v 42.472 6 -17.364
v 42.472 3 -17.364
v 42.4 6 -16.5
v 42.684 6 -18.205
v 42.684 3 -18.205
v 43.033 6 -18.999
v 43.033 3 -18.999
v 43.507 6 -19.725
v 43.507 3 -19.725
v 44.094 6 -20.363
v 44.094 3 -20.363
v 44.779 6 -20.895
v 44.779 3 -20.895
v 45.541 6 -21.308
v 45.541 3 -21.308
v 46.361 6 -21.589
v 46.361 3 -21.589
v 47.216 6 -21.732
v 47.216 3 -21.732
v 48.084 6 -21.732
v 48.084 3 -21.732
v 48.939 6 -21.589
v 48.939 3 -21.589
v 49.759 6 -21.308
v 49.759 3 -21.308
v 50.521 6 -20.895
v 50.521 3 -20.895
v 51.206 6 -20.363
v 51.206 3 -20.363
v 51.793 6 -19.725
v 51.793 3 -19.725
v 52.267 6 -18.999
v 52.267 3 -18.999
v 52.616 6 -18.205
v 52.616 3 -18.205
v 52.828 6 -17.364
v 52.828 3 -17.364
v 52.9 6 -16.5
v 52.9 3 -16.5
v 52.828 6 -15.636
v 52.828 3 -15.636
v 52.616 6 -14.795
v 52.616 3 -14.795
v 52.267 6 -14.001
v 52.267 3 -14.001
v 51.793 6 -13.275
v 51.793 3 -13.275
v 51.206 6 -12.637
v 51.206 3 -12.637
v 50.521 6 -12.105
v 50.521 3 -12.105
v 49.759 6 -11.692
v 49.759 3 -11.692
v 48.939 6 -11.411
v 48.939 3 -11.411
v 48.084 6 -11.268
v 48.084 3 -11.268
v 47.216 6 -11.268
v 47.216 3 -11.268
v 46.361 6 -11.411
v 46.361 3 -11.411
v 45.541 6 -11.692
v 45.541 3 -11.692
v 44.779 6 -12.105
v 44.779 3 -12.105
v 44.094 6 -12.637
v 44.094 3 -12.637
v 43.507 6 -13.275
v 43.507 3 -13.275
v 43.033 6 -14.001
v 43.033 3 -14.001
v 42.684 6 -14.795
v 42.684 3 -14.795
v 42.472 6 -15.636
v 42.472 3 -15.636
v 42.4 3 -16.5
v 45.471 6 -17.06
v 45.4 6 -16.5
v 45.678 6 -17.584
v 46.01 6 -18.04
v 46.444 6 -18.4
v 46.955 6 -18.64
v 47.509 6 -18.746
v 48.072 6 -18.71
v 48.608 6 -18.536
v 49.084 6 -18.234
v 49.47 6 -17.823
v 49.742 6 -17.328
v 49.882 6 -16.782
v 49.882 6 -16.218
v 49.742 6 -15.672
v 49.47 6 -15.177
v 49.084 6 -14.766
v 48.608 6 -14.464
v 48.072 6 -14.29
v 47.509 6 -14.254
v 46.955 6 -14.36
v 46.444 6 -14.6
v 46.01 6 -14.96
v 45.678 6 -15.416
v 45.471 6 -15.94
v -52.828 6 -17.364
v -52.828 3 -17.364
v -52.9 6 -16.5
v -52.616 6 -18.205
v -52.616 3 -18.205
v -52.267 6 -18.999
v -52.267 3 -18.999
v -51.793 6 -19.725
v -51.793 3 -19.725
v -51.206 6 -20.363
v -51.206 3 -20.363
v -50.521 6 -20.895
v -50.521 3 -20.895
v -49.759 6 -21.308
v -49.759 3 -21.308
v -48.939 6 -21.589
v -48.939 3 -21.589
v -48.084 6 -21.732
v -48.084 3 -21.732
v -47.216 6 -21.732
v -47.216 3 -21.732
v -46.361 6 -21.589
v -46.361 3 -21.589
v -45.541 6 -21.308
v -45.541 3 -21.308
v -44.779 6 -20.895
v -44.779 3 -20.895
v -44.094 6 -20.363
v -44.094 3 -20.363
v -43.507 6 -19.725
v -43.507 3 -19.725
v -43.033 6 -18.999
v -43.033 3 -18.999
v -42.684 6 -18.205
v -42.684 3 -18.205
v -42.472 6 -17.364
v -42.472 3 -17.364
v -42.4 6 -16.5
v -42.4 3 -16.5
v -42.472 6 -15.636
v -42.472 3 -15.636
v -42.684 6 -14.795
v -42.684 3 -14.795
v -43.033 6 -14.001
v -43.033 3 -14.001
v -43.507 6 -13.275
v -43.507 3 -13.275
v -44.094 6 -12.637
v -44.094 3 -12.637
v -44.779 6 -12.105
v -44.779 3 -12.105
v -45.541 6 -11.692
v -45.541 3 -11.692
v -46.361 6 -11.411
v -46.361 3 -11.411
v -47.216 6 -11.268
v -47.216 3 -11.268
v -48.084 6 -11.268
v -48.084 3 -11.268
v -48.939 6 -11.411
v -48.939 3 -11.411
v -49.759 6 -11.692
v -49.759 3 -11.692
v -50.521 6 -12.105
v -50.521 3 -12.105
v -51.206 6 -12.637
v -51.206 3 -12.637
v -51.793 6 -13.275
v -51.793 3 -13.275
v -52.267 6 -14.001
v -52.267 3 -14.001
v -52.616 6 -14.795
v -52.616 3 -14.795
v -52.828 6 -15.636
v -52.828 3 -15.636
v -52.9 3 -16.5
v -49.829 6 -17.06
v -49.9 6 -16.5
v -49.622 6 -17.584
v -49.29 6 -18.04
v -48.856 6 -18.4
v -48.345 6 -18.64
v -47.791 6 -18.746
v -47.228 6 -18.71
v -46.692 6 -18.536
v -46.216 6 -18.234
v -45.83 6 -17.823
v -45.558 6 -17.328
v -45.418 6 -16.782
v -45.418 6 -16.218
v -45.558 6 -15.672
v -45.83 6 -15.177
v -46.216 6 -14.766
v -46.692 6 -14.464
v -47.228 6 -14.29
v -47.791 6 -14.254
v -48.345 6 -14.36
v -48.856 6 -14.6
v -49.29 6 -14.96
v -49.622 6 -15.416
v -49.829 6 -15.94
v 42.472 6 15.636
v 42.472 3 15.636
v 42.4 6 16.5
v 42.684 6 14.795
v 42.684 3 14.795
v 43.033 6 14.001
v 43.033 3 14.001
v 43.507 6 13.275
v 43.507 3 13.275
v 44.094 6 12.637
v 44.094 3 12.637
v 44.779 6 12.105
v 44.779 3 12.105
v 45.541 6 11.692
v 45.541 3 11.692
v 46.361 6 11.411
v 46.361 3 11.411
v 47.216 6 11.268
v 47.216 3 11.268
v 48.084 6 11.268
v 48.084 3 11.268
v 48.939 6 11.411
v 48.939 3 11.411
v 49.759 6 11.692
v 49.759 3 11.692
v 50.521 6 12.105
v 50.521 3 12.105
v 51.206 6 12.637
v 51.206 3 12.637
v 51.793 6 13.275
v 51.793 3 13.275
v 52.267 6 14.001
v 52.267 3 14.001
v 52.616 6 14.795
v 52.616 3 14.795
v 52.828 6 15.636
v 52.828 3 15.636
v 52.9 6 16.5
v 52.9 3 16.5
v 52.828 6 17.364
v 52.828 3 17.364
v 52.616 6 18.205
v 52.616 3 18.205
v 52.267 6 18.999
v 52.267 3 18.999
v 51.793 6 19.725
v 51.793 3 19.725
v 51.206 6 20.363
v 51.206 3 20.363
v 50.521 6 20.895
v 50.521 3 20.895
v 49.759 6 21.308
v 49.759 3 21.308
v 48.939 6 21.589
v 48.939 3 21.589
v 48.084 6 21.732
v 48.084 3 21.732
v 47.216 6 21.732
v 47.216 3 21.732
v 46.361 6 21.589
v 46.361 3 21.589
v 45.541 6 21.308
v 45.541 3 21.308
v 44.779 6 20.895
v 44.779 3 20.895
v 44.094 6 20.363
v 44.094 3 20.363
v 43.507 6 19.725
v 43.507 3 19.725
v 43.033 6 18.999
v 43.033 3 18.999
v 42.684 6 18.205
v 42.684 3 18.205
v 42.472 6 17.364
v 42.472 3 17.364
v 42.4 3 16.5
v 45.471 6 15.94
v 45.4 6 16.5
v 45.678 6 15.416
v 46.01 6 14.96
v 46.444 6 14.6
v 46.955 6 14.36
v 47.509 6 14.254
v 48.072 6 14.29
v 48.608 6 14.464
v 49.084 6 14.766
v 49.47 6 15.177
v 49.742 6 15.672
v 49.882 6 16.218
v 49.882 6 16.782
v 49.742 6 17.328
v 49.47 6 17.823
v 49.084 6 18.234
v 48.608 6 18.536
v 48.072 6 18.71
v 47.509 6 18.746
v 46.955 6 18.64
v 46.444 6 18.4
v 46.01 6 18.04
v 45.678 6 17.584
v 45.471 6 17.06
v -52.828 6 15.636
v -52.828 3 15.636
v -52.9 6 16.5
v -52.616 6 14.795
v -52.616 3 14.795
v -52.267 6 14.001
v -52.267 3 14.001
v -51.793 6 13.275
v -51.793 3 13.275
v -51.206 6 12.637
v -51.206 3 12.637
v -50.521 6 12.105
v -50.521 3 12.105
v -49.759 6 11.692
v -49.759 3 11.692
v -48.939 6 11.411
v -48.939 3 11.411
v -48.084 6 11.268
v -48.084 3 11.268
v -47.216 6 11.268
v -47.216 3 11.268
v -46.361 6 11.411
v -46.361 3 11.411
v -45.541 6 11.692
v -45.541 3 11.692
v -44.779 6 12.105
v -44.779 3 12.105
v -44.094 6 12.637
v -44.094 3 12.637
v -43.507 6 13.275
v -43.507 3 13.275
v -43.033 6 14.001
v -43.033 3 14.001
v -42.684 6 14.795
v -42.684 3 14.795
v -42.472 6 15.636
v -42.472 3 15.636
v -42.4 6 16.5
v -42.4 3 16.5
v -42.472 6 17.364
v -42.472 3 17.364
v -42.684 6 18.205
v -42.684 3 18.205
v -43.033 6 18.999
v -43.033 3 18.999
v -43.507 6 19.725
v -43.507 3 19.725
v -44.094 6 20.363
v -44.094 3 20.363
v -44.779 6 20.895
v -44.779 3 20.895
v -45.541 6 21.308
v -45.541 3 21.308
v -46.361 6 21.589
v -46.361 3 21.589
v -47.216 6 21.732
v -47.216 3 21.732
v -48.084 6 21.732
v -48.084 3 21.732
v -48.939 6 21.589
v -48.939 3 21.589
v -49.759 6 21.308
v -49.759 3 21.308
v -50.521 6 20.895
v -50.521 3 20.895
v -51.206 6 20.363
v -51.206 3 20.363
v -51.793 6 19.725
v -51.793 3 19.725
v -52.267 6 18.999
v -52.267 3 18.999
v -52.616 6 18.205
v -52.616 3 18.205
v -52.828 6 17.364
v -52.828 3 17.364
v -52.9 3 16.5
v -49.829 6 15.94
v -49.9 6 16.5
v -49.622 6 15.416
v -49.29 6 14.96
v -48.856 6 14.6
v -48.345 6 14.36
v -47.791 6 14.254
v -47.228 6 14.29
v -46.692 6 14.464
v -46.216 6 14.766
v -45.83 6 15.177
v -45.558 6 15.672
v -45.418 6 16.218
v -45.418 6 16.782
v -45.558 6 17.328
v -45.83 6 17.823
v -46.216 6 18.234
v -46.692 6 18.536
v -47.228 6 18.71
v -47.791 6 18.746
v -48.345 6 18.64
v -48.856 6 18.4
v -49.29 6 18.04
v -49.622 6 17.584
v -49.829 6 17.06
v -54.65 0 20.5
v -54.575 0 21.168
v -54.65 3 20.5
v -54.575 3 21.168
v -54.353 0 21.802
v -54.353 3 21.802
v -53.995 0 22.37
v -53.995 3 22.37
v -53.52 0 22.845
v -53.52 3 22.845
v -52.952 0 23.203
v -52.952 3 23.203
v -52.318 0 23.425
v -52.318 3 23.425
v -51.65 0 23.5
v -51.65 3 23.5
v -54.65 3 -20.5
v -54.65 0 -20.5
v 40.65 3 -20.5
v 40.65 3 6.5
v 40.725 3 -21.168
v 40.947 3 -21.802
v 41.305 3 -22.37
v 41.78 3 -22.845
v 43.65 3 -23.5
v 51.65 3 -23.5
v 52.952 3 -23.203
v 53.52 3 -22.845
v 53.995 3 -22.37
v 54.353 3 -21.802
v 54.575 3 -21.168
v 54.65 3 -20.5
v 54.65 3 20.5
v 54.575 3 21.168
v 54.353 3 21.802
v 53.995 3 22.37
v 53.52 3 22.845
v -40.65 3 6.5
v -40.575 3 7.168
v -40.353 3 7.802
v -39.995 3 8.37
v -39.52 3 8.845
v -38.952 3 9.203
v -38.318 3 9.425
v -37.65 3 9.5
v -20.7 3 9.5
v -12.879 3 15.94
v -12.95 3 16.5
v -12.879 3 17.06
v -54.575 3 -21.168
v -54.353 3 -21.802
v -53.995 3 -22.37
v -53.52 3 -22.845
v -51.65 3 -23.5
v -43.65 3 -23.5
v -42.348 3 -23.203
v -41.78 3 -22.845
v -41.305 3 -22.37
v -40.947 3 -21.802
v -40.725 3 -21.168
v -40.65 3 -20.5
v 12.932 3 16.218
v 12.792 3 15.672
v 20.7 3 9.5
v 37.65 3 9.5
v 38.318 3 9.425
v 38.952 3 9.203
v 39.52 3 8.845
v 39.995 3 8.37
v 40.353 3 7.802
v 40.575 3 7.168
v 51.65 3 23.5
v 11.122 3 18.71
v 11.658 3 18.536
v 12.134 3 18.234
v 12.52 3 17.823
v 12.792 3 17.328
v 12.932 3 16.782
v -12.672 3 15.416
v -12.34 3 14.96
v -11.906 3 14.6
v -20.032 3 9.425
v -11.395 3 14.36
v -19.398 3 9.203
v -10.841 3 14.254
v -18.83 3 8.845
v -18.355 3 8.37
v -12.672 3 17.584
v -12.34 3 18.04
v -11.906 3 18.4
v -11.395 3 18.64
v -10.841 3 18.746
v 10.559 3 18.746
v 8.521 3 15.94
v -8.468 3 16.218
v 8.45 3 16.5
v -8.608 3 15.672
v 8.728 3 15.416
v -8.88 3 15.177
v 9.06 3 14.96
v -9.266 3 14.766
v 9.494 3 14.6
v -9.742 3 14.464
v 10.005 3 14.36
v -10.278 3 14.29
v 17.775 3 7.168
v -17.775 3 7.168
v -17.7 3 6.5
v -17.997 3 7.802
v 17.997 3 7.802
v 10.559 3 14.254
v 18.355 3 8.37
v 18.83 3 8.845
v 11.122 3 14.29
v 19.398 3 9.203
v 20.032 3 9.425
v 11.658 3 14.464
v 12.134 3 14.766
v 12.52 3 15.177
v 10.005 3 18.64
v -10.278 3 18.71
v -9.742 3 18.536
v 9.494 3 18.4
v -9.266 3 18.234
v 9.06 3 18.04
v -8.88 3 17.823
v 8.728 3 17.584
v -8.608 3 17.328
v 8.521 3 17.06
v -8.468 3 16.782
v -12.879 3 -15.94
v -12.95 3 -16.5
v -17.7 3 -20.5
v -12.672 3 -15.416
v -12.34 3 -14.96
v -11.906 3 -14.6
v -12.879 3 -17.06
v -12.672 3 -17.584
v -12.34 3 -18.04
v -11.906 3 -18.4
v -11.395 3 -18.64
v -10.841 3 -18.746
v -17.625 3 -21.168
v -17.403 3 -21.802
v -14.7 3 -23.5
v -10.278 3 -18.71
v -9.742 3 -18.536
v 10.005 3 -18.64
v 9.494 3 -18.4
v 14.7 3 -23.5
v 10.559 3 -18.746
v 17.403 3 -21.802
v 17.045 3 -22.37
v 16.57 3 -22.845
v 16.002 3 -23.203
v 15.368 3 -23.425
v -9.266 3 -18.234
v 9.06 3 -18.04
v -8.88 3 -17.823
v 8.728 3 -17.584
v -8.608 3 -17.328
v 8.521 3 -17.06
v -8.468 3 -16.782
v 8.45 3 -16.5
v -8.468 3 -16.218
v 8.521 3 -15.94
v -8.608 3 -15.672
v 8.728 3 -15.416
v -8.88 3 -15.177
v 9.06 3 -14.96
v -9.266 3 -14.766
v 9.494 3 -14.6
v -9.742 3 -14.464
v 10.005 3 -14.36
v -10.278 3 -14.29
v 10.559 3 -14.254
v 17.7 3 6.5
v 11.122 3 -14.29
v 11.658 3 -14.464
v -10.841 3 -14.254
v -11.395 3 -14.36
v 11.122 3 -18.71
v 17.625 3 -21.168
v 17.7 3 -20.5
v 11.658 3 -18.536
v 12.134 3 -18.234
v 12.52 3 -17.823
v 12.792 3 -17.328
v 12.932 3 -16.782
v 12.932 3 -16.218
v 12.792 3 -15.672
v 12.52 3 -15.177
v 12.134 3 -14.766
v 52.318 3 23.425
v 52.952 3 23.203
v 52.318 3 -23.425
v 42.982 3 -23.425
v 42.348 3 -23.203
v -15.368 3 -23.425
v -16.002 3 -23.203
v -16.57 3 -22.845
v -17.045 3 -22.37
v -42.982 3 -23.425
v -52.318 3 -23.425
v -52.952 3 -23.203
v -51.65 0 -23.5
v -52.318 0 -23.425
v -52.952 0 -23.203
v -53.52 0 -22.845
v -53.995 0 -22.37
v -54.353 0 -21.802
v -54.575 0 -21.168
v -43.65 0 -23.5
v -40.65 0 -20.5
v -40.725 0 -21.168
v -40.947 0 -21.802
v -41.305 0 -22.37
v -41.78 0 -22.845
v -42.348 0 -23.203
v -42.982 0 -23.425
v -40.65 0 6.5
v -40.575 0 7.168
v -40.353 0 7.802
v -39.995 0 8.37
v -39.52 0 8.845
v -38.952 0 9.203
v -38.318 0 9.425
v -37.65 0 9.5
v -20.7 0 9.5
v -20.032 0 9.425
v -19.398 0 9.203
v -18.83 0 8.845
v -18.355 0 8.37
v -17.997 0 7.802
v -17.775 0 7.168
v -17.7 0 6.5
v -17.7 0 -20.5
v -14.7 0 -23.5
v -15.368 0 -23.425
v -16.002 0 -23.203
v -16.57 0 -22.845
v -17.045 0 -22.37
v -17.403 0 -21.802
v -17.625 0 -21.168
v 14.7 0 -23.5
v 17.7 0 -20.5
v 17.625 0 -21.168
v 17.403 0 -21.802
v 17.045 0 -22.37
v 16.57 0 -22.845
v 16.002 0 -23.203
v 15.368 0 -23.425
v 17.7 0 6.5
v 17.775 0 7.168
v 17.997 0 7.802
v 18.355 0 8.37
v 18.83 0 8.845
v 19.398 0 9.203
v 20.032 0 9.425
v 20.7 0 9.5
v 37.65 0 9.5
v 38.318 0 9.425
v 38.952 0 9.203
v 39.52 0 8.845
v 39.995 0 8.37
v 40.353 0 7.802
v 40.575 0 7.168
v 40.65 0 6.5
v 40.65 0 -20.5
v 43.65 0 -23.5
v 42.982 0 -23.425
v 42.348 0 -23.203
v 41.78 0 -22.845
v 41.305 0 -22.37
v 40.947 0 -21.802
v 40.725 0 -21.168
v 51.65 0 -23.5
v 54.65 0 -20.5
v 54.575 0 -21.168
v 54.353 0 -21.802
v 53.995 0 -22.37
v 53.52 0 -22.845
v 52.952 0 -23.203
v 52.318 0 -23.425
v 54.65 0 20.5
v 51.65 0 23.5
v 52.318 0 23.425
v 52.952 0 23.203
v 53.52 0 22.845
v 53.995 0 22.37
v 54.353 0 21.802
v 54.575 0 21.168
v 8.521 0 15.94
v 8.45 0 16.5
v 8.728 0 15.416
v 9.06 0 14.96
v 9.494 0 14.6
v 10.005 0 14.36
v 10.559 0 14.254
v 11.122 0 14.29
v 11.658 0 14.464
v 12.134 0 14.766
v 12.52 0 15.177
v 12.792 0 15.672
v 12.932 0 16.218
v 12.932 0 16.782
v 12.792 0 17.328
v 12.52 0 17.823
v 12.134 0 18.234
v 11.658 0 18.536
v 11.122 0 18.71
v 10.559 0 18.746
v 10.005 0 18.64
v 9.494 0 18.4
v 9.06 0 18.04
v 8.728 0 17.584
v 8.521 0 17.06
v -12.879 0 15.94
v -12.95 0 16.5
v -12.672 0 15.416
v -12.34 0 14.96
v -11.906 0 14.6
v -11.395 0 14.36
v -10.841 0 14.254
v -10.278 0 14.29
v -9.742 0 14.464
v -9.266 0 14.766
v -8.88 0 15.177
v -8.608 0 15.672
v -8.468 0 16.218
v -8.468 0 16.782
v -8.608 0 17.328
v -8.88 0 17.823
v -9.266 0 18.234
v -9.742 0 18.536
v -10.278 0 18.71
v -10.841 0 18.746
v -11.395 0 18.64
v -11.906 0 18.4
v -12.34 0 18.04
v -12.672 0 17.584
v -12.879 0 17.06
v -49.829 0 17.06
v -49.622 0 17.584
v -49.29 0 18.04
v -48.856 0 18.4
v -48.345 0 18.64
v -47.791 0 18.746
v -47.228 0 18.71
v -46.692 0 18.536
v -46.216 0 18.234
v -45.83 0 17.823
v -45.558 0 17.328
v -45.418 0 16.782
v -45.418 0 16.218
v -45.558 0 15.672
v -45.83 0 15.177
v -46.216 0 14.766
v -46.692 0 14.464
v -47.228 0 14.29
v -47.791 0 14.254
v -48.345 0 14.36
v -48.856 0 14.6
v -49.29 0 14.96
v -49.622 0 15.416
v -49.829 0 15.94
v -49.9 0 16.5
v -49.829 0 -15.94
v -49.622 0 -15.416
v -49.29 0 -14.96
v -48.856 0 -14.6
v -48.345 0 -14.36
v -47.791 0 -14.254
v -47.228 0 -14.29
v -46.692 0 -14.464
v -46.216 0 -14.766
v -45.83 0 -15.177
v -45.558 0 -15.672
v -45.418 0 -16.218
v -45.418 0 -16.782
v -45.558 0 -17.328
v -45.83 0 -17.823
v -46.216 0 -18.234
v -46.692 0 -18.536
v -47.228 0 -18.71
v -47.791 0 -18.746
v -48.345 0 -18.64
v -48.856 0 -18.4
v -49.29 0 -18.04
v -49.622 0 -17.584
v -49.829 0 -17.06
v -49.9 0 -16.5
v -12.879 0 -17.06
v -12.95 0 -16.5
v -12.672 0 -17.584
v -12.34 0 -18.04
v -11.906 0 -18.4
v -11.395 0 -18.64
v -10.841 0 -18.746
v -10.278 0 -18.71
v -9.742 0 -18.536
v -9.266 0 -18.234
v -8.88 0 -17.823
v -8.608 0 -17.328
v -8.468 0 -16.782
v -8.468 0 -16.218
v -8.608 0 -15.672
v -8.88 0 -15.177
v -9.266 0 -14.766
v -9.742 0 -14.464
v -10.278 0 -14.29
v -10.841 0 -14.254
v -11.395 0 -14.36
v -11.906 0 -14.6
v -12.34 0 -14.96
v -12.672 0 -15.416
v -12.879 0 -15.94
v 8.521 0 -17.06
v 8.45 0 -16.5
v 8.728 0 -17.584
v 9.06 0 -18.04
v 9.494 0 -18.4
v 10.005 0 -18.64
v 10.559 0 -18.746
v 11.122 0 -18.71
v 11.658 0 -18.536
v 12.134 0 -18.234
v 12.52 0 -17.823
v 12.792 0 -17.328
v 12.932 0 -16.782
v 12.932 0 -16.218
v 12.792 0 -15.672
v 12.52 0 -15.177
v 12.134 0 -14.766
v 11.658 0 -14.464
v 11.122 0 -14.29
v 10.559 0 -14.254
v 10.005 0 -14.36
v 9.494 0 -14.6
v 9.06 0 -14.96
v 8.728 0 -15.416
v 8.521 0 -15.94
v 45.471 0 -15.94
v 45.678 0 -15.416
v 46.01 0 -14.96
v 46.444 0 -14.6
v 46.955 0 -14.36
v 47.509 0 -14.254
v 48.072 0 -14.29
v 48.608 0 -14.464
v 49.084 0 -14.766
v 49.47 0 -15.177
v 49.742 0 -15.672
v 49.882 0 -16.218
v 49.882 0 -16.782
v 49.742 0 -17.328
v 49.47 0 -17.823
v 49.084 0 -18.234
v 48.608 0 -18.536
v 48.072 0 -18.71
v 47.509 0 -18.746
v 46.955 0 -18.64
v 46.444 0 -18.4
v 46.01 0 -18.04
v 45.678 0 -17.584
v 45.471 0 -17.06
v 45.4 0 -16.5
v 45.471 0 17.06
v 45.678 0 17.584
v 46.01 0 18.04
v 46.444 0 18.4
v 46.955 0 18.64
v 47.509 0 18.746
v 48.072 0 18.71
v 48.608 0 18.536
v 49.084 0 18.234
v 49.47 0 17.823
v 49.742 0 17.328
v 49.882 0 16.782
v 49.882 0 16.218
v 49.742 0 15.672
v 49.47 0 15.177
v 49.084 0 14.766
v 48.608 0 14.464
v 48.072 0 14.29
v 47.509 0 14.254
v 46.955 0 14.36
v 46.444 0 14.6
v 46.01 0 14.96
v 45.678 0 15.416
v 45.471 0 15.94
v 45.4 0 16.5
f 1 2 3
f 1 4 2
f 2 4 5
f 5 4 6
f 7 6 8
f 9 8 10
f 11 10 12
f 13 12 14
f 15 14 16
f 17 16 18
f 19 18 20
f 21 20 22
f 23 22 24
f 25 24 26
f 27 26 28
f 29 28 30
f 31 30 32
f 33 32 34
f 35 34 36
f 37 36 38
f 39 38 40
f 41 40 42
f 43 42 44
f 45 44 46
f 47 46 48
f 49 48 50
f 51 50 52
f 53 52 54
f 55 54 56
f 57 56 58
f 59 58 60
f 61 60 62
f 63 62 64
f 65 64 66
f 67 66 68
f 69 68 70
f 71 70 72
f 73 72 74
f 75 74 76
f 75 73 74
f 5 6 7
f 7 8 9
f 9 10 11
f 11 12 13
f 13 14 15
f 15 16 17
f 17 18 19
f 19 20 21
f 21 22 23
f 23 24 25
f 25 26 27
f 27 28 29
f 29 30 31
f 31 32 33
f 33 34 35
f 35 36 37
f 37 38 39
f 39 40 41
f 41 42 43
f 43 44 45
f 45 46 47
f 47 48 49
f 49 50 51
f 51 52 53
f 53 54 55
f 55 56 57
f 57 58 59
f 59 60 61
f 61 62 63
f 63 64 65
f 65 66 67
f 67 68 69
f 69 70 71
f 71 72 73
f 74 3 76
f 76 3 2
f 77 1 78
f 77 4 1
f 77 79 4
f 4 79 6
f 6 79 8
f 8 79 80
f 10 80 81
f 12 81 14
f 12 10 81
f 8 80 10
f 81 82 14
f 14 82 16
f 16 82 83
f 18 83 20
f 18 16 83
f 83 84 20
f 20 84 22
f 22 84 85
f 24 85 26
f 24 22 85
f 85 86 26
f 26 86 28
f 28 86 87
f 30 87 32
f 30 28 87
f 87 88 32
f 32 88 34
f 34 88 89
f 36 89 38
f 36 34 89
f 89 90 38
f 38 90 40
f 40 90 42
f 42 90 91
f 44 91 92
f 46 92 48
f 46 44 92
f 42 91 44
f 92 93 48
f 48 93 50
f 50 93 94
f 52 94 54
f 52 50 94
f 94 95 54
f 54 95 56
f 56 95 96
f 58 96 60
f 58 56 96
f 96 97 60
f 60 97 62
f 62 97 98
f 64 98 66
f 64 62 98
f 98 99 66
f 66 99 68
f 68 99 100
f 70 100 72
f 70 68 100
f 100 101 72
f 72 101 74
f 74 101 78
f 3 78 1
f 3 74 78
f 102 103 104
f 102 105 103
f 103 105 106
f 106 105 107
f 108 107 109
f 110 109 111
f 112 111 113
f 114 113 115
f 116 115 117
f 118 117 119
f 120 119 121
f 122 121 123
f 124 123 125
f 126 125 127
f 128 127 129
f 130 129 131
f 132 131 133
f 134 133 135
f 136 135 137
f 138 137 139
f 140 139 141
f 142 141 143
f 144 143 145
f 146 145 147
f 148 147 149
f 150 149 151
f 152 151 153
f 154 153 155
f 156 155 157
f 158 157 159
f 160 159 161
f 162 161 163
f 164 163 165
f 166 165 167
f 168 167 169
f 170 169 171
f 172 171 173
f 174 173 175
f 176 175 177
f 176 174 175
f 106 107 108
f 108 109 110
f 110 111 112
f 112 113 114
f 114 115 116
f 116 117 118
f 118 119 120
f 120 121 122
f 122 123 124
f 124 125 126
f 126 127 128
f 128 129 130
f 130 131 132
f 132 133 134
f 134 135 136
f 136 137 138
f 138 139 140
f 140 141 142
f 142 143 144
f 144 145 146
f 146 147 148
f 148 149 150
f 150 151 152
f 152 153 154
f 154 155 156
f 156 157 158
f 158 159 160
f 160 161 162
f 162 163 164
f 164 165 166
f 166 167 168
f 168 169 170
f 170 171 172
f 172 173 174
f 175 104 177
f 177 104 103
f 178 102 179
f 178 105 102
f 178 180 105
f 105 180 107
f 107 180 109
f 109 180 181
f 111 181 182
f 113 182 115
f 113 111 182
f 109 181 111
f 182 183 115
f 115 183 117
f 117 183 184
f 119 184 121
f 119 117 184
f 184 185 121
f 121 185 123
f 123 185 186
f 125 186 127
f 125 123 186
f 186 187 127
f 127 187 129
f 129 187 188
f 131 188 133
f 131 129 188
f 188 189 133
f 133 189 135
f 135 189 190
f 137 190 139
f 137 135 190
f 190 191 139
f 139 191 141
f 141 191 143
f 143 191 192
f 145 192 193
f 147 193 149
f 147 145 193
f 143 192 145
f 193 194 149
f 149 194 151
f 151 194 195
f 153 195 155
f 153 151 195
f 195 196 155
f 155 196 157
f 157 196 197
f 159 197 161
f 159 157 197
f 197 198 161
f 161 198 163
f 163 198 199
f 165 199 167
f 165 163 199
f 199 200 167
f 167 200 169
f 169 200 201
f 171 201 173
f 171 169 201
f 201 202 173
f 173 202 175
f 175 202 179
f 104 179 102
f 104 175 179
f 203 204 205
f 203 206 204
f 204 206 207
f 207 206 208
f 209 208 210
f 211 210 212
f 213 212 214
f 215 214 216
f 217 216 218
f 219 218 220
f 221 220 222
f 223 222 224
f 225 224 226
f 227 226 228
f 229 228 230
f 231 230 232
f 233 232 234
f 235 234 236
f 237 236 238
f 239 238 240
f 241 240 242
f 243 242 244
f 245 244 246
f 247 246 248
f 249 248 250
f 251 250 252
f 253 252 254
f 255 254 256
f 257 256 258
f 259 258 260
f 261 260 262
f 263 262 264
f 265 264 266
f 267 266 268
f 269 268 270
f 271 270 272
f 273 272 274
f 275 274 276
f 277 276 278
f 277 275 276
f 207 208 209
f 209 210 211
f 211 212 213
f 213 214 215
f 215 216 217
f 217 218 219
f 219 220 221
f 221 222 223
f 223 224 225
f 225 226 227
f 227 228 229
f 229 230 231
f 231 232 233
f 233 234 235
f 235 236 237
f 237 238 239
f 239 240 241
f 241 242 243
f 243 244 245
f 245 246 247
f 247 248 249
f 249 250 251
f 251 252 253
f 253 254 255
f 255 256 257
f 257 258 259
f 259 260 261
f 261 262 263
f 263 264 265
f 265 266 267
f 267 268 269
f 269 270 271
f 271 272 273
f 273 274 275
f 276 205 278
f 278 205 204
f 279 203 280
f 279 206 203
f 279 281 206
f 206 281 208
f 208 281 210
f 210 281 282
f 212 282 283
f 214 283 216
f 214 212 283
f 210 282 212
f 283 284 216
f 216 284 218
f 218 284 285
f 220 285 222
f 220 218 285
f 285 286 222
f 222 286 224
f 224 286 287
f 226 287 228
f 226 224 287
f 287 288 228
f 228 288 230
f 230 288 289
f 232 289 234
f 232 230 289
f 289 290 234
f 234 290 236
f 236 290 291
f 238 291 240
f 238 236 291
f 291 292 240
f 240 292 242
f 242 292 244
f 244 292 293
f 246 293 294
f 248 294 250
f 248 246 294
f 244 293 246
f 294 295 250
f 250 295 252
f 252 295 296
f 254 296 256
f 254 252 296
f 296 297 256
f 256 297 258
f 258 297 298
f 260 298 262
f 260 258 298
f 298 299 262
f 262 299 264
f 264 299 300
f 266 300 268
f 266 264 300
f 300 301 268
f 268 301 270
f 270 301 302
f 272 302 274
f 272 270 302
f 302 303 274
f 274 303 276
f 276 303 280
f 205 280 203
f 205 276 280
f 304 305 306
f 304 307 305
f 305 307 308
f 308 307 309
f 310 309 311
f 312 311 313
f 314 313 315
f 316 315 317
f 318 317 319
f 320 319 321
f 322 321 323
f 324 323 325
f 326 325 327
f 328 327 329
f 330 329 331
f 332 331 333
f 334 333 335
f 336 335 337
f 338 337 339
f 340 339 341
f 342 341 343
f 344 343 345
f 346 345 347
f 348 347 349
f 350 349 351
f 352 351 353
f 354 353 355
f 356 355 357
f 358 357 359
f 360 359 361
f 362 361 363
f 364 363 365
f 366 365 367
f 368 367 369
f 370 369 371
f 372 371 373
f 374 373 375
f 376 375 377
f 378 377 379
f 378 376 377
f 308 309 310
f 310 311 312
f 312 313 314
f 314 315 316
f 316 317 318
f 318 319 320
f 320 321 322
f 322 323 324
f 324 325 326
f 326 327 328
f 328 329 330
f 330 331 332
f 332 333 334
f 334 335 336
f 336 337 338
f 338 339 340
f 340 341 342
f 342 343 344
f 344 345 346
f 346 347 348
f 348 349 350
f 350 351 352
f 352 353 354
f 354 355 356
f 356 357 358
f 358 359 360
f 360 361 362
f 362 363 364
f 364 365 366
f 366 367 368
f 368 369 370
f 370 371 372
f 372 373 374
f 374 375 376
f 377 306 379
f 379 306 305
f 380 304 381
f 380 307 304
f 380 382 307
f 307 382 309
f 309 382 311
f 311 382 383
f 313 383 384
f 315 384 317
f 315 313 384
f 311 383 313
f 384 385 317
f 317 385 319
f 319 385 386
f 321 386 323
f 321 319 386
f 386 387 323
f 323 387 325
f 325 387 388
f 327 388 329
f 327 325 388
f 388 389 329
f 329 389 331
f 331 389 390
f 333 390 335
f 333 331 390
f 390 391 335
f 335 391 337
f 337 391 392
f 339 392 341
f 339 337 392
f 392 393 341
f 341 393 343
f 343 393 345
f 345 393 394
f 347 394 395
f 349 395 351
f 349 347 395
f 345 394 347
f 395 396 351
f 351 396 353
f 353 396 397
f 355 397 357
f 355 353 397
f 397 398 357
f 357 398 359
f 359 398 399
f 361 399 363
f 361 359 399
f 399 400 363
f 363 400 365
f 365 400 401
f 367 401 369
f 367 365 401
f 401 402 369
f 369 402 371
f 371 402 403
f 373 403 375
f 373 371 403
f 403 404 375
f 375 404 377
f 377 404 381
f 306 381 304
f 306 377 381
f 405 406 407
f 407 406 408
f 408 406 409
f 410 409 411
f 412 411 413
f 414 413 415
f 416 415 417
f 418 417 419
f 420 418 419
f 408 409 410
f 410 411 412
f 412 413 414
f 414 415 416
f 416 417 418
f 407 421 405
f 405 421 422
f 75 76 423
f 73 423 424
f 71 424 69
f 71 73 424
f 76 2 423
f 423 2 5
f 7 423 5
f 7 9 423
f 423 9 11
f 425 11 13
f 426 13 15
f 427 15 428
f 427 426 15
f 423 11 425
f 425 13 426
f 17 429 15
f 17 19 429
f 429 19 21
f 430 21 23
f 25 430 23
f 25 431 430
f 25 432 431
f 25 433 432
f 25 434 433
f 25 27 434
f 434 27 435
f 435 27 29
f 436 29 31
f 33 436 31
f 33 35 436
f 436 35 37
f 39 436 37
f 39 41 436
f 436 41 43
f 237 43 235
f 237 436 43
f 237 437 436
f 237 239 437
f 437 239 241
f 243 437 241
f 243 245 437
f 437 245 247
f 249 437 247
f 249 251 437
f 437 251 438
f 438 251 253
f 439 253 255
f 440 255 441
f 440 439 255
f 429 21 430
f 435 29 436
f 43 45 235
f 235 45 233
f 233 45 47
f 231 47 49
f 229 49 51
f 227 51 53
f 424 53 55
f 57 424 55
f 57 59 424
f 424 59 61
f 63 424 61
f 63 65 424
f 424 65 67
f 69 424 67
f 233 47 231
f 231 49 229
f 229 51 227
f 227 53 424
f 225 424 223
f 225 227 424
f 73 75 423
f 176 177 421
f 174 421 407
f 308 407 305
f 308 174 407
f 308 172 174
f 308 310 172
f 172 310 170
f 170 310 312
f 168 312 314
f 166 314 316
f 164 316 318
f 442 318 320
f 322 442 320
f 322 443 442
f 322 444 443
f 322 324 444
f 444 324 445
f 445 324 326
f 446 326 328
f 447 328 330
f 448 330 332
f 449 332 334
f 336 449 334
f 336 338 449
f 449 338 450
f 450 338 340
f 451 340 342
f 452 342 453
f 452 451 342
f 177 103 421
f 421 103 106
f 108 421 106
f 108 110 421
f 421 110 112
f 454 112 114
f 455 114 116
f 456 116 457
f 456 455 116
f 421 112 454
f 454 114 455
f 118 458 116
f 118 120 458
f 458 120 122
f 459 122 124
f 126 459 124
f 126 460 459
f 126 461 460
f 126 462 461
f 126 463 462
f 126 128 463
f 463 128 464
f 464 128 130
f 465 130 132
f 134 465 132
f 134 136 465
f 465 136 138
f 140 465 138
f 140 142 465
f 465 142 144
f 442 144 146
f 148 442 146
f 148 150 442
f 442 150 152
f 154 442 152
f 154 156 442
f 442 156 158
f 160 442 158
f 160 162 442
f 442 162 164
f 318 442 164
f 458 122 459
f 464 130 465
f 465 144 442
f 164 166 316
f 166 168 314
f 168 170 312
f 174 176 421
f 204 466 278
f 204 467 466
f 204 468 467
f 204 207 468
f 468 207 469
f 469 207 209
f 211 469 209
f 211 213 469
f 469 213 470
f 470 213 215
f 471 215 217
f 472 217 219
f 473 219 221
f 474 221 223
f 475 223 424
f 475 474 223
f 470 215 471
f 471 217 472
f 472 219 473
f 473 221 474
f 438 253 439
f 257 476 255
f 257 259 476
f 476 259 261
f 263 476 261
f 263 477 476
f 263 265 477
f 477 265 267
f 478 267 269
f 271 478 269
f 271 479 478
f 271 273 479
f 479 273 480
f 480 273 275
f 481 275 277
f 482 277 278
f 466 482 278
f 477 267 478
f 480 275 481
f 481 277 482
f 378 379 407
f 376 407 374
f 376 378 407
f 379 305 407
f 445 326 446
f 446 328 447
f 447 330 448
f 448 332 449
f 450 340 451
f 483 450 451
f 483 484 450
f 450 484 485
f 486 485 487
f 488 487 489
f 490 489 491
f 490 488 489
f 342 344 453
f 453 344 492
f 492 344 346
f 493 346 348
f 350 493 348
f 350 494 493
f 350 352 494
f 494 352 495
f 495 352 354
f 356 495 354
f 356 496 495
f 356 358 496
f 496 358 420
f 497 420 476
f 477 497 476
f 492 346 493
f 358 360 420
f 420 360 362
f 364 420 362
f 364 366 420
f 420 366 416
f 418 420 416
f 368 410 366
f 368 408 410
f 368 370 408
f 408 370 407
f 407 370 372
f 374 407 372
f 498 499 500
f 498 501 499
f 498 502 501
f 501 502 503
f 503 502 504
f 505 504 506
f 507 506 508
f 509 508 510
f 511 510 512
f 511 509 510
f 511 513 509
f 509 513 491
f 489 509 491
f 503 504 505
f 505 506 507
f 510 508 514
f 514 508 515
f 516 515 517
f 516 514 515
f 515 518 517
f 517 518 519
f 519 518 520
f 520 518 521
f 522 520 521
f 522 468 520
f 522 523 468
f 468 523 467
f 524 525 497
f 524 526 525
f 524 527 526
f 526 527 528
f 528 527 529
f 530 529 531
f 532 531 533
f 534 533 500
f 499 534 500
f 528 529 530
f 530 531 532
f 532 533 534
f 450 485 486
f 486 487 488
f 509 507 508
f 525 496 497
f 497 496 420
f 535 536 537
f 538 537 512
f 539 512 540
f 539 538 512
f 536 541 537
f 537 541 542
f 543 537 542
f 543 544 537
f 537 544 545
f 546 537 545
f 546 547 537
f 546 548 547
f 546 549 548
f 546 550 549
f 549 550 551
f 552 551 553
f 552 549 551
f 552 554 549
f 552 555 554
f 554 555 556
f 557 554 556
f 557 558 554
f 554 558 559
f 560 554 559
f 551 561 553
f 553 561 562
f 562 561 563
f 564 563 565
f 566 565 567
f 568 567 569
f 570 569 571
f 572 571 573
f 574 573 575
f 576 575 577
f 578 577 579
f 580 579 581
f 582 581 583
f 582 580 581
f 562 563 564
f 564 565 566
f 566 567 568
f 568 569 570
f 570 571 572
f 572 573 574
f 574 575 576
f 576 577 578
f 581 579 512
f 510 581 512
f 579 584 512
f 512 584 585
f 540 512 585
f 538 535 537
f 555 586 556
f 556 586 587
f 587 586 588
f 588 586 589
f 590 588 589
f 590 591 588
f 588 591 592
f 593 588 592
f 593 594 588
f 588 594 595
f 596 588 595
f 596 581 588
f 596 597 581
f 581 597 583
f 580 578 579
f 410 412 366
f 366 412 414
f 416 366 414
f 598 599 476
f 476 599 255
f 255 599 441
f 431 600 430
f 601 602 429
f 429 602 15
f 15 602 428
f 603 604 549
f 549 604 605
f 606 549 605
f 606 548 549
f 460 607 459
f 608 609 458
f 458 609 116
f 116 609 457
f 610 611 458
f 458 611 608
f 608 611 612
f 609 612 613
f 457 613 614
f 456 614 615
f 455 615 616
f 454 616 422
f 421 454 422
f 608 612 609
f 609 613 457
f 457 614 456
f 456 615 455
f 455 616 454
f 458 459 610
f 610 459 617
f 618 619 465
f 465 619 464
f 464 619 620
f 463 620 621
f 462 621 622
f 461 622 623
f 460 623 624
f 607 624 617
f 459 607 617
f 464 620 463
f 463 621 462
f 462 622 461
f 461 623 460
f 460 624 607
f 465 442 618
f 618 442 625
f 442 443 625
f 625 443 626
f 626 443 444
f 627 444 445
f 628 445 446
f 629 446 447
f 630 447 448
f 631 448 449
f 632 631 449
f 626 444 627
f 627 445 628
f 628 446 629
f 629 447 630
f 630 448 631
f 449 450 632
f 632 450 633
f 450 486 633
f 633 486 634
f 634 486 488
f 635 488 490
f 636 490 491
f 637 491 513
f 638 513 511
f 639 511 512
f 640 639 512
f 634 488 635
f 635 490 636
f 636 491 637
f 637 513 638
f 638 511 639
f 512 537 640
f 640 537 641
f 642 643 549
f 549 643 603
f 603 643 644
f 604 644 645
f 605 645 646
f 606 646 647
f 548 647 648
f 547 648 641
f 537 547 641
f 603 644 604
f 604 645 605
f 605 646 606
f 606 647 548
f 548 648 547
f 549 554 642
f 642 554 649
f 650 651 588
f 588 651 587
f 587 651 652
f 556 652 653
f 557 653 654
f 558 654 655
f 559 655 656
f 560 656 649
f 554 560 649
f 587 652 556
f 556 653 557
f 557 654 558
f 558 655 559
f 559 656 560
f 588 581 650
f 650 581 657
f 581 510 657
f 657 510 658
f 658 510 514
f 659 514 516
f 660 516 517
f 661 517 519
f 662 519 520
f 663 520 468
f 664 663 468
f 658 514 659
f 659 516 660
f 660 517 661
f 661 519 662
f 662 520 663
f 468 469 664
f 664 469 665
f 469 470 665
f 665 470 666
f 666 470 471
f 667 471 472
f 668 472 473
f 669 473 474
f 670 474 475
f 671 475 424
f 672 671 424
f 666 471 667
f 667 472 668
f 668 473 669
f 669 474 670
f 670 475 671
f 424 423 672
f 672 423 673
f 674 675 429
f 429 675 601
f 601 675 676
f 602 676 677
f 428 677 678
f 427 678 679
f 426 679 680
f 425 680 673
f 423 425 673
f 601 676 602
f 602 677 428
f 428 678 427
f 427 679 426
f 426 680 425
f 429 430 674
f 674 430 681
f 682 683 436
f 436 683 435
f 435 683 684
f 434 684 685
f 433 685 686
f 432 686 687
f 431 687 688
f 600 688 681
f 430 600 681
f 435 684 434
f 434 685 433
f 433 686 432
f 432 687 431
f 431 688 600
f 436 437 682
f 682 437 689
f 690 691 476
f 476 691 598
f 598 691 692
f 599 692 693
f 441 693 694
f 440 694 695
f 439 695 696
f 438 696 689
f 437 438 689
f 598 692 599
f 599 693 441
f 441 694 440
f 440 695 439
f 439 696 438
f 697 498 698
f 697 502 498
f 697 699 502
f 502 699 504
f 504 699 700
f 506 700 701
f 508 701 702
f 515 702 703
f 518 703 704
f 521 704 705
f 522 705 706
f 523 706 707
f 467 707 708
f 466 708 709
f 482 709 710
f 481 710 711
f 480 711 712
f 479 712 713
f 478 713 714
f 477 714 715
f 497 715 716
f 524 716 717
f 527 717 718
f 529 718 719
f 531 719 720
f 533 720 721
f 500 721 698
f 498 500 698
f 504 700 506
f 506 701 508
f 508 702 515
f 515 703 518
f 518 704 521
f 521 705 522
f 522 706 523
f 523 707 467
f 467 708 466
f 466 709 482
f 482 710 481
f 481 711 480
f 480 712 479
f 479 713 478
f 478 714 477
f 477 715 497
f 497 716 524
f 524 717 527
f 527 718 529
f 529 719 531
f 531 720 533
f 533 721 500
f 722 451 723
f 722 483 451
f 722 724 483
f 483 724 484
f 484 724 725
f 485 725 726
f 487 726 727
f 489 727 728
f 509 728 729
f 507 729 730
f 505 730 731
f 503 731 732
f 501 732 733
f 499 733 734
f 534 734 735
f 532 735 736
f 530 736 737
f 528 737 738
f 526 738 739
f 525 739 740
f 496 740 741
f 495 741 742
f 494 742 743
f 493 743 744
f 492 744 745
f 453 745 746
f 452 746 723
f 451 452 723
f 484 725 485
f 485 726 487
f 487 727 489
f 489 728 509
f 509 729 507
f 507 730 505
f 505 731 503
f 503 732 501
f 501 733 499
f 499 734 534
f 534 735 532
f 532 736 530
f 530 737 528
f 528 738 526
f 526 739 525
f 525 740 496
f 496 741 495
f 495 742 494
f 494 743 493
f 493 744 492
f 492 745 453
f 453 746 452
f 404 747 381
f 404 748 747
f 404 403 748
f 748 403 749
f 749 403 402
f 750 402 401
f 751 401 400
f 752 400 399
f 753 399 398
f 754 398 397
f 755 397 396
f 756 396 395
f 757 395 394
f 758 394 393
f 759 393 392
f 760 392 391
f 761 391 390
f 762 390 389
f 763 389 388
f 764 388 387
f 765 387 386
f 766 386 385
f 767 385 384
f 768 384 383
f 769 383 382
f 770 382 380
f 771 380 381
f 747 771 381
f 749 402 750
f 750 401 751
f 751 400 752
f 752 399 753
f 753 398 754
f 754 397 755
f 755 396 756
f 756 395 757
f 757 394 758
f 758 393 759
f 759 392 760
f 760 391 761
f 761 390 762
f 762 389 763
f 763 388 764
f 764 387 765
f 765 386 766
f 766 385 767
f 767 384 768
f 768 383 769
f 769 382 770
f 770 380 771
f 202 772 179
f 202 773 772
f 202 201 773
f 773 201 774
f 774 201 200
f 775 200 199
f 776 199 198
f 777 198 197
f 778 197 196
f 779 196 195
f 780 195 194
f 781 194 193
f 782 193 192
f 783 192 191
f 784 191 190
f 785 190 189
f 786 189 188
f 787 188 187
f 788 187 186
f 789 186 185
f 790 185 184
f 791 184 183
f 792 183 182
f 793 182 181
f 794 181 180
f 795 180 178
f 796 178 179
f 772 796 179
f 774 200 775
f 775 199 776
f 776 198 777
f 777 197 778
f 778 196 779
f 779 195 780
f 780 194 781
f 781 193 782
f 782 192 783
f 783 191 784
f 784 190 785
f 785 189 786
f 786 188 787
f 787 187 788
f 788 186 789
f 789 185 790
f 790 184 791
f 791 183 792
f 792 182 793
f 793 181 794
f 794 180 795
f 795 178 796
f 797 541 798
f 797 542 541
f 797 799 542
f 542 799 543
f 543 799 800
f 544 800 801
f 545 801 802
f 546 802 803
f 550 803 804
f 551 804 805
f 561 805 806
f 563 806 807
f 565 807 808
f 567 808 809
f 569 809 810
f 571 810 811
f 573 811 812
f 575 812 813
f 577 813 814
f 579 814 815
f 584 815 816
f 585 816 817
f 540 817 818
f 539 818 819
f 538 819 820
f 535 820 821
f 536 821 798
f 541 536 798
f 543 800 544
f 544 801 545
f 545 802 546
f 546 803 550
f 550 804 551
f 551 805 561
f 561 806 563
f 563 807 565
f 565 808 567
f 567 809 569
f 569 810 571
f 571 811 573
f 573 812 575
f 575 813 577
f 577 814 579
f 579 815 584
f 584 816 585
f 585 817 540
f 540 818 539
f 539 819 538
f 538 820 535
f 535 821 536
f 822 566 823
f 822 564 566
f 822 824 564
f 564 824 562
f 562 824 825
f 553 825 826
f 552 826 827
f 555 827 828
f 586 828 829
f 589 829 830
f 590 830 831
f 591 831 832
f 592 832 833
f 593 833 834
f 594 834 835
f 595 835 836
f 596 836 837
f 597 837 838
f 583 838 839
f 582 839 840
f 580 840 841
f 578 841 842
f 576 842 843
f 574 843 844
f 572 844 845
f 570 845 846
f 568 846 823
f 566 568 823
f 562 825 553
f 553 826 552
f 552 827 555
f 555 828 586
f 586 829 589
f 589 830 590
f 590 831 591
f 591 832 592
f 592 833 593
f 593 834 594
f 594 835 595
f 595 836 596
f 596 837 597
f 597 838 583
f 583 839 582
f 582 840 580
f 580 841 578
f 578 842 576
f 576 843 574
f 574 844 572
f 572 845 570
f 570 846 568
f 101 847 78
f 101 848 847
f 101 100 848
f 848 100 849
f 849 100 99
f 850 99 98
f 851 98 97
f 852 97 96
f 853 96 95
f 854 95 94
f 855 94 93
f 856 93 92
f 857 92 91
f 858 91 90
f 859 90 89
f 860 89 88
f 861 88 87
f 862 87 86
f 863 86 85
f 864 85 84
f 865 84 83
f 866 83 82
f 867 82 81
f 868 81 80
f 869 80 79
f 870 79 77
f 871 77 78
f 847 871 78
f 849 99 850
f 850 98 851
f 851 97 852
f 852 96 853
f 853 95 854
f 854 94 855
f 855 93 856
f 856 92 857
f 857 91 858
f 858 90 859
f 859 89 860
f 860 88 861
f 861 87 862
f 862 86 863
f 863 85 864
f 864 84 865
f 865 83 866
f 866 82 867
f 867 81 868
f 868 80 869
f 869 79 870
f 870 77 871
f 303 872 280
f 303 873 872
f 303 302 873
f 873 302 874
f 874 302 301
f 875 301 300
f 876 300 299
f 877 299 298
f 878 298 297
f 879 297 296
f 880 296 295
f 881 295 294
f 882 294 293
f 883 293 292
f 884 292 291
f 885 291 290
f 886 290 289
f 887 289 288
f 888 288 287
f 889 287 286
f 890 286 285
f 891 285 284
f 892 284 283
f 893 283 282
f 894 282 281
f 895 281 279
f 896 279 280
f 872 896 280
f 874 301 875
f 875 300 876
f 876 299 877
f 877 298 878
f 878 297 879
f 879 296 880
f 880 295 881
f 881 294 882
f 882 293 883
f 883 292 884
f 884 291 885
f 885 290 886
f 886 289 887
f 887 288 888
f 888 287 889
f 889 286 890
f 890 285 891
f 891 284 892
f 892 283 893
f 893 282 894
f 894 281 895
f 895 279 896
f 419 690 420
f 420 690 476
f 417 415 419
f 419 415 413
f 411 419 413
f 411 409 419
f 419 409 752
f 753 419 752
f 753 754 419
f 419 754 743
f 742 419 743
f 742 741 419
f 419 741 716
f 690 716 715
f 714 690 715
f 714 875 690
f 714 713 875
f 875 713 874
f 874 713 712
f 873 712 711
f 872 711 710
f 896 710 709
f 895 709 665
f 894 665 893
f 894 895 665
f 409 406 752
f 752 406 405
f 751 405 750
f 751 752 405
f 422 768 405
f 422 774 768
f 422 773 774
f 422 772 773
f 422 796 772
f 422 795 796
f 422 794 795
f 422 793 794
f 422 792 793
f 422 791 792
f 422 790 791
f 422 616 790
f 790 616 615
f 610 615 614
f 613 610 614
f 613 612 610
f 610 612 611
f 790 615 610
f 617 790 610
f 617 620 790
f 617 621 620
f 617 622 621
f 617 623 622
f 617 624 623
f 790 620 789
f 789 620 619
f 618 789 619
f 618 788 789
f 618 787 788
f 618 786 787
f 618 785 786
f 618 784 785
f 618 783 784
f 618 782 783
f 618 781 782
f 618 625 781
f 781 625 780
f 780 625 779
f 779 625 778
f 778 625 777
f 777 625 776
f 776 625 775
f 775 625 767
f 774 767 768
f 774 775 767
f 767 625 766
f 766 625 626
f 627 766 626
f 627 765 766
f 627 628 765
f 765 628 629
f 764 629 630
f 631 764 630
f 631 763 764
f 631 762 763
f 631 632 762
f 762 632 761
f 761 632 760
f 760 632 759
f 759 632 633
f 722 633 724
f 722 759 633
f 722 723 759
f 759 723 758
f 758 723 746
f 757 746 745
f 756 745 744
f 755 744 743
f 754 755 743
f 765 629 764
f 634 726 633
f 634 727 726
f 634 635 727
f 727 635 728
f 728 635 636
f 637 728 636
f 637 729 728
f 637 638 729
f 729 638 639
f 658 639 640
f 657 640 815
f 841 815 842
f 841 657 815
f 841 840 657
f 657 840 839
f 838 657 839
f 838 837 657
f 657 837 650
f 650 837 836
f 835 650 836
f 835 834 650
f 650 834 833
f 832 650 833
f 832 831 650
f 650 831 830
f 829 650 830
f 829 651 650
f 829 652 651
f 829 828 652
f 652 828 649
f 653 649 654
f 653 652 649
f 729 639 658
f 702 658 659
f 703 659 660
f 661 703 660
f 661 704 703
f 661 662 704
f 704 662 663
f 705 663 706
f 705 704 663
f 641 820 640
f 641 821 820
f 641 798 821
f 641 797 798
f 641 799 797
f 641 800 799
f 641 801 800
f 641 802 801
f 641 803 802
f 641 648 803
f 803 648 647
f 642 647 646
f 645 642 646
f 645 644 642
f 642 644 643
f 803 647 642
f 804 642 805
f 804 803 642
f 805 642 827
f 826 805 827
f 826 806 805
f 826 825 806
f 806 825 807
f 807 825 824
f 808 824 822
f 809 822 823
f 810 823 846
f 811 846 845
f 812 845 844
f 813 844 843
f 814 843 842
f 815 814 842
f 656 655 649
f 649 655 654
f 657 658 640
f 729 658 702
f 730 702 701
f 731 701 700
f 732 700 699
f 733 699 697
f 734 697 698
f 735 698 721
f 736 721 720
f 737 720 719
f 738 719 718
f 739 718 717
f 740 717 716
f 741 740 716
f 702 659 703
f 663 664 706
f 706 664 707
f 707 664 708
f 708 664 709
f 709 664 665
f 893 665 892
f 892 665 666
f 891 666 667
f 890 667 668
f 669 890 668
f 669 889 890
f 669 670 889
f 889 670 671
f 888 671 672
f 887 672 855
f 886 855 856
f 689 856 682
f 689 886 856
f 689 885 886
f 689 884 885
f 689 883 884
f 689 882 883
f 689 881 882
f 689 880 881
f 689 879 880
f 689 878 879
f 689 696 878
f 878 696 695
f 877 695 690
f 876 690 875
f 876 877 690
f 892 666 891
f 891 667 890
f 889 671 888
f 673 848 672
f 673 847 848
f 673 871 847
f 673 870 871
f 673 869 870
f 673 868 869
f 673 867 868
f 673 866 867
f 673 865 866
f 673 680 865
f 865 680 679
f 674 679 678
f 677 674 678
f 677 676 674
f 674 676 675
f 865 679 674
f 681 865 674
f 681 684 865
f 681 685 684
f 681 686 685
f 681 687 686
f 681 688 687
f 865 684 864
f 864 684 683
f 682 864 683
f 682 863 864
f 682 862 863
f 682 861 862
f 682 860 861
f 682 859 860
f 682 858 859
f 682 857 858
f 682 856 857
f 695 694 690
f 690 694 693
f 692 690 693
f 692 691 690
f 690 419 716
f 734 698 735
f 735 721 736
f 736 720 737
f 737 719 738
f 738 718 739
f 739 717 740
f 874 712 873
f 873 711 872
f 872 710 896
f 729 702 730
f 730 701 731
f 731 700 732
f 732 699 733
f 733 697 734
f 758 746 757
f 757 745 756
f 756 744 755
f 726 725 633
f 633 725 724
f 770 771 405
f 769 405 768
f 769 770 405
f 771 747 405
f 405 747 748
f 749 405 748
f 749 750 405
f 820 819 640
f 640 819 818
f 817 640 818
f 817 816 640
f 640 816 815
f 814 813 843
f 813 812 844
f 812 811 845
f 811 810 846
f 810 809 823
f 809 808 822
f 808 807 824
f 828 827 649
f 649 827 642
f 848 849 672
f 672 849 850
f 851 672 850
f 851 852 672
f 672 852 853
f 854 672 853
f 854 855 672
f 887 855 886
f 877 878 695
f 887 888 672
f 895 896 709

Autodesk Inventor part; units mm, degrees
ref_plane "YZ Plane" through (0, 0, 0) normal (1, 0, 0) x (0, 1, 0)
ref_plane "XY Plane" through (0, 0, 0) normal (0, 0, 1) x (1, 0, 0)
sketch "Sketch1" plane through (0, 0, 0) normal (0, 1, 0) x (-1, 0, 0)
  line L0 (-51.65, 23.5) -> (51.65, 23.5)
  line L1 (54.65, 20.5) -> (54.65, -20.5)
  line L2 (51.65, -23.5) -> (-51.65, -23.5)
  line L3 (-54.65, -20.5) -> (-54.65, 20.5)
  circle A0 centre (-47.65, 16.5) radius 2.25
  circle A1 centre (47.65, 16.5) radius 2.25
  circle A2 centre (-47.65, 16.5) radius 26.75 construction
  circle A3 centre (-10.7, 16.5) radius 2.25
  circle A4 centre (-10.7, 16.5) radius 11.2 construction
  line L4 (-21.9, 16.5) -> (-21.9, 6.8604)
  line L5 (-20.9, 16.5) -> (-20.9, 6.8604)
  circle A5 centre (10.7, 16.5) radius 2.25
  circle A6 centre (10.7, 16.5) radius 11.2 construction
  line L6 (-0.5, 16.5) -> (-0.5, 5.694)
  line L7 (0.5, 16.5) -> (0.5, 5.694)
  circle A7 centre (47.65, 16.5) radius 26.75 construction
  line L8 (20.9, 16.5) -> (20.9, 5.8426)
  line L9 (21.9, 16.5) -> (21.9, 5.8426)
  arc A8 (-51.65, 23.5) -> (-54.65, 20.5) centre (-51.65, 20.5) ccw
  arc A9 (-54.65, -20.5) -> (-51.65, -23.5) centre (-51.65, -20.5) ccw
  arc A10 (54.65, 20.5) -> (51.65, 23.5) centre (51.65, 20.5) ccw
  arc A11 (51.65, -23.5) -> (54.65, -20.5) centre (51.65, -20.5) ccw
  line L10 (-84.9483, 16.5) -> (77.5332, 16.5) construction
  line L11 (-54.65, 0) -> (54.65, 0)
  line L12 (10.7, 30.5) -> (10.7, -33.5) construction
  circle A12 centre (10.7, -16.5) radius 2.25
  line L13 (5, -8.5) -> (18, -8.5) construction
  line L14 (3.7, -4.5) -> (3.7, -33.5) construction
  line L15 (-6.3, -4.5) -> (-6.3, -33.5) construction
  line L16 (-1.3, -33.5) -> (-1.3, -4.5) construction
  circle A13 centre (-1.3, -38.9) radius 2.25
  circle A14 centre (-1.3, -8.5) radius 2.25
  line L17 (-17.7373, -23.5) -> (14.2274, -23.5)
  line L18 (14.2274, -23.5) -> (14.2274, -45.3565)
  line L19 (14.2274, -45.3565) -> (-17.7373, -45.3565)
  line L20 (-17.7373, -45.3565) -> (-17.7373, -23.5)
  line L21 (-40.65, 5) -> (-30.65, 5)
  line L22 (-30.65, 5) -> (-30.65, -5)
  line L23 (-30.65, -5) -> (-40.65, -5)
  line L24 (-40.65, -5) -> (-40.65, 5)
  line L25 (-42.65, -7) -> (-28.65, -7)
  line L26 (-28.65, -7) -> (-28.65, 7)
  line L27 (-28.65, 7) -> (-42.65, 7)
  line L28 (-42.65, 7) -> (-42.65, -7)
  point P0 (0, 0)
  point P1 (-54.65, 23.5)
  point P2 (-54.65, -23.5)
  point P3 (0, 23.5)
  point P4 (-35.65, 5)
  point P5 (-30.65, 0)
  dimension "d5" = 53.5
  dimension "d12" = 53.5
  dimension "d1" = 4.5
  dimension "d2" = 7
  dimension "d3" = 4.5
  dimension "d4" = 7
  dimension "d6" = 4.5
  dimension "d7" = 22.4
  dimension "d8" = 1
  dimension "d9" = 4.5
  dimension "d10" = 22.4
  dimension "d11" = 1
  dimension "d13" = 1
  dimension "d14" = 3
  dimension "d23" = 16.5
  dimension "d24" = 7
  dimension "d27" = 8
  dimension "d28" = 7
  dimension "d29" = 10
  dimension "d30" = 5
  dimension "d31" = 4.5
  dimension "d32" = 4.5
  dimension "d33" = 30.4
  dimension "d38" = 0
  dimension "d40" = 10
  dimension "d41" = 10
  dimension "d43" = 2
  dimension "d47" = 12
ref_plane "Work Plane1" through (0, 3, 0) normal (0, 1, 0) x (-1, 0, 0)
sketch "Sketch3" plane through (0, 3, 0) normal (0, 1, 0) x (-1, 0, 0)
  circle A0 centre (-47.65, 16.5) radius 2.25
  circle A1 centre (-47.65, -16.5) radius 2.25
  circle A2 centre (-10.7, -16.5) radius 2.25
  circle A3 centre (10.7, -16.5) radius 2.25
  circle A4 centre (47.65, -16.5) radius 2.25
  circle A5 centre (47.65, 16.5) radius 2.25
  circle A6 centre (10.7, 16.5) radius 2.25
  circle A7 centre (-10.7, 16.5) radius 2.25
  line L0 (-54.65, 23.5) -> (-54.65, -23.5)
  line L1 (-54.65, -23.5) -> (54.65, -23.5)
  line L2 (54.65, 23.5) -> (-54.65, 23.5)
  line L3 (54.65, -23.5) -> (54.65, 23.5)
  line L4 (-40.65, 9.5) -> (-17.7, 9.5)
  line L5 (-17.7, 9.5) -> (-17.7, -23.5)
  line L6 (-40.65, -23.5) -> (-40.65, 9.5)
  line L7 (17.7, 9.5) -> (17.7, -23.5)
  line L8 (17.7, 9.5) -> (40.65, 9.5)
  line L9 (40.65, 9.5) -> (40.65, -23.5)
  circle A8 centre (-47.65, 16.5) radius 5.25
  circle A9 centre (47.65, 16.5) radius 5.25
  point P0 (0, 0)
  dimension "d66" = 7
  dimension "d67" = 7
  dimension "d68" = 7
  dimension "d69" = 7
  dimension "d71" = 7
  dimension "d72" = 7
  dimension "d73" = 7
  dimension "d74" = 7
  dimension "d75" = 7
  dimension "d76" = 7
  dimension "d80" = 3
  dimension "d81" = 3
extrude "Extrusion6" add sketch "Sketch3" against normal blind 3 contours L2 L3 L1 L9 L8 L7 L5 L4 L6 L0 | A8 | A9
fillet "Fillet2" radius 3 12 edges at (54.65, 1.5, 23.5) (54.65, 1.5, -23.5) (40.65, 1.5, -23.5) (40.65, 1.5, 9.5) (17.7, 1.5, 9.5) (17.7, 1.5, -23.5) (-17.7, 1.5, -23.5) (-17.7, 1.5, 9.5) (-40.65, 1.5, 9.5) (-40.65, 1.5, -23.5) (-54.65, 1.5, -23.5) (-54.65, 1.5, 23.5)
extrude "Extrusion7" add sketch "Sketch3" along normal blind 3 contours A8 | A9
mirror "Mirror3" about plane through (0, 0, 0) normal (0, 0, 1) of "Extrusion7"
properties part number "OuterBar"
